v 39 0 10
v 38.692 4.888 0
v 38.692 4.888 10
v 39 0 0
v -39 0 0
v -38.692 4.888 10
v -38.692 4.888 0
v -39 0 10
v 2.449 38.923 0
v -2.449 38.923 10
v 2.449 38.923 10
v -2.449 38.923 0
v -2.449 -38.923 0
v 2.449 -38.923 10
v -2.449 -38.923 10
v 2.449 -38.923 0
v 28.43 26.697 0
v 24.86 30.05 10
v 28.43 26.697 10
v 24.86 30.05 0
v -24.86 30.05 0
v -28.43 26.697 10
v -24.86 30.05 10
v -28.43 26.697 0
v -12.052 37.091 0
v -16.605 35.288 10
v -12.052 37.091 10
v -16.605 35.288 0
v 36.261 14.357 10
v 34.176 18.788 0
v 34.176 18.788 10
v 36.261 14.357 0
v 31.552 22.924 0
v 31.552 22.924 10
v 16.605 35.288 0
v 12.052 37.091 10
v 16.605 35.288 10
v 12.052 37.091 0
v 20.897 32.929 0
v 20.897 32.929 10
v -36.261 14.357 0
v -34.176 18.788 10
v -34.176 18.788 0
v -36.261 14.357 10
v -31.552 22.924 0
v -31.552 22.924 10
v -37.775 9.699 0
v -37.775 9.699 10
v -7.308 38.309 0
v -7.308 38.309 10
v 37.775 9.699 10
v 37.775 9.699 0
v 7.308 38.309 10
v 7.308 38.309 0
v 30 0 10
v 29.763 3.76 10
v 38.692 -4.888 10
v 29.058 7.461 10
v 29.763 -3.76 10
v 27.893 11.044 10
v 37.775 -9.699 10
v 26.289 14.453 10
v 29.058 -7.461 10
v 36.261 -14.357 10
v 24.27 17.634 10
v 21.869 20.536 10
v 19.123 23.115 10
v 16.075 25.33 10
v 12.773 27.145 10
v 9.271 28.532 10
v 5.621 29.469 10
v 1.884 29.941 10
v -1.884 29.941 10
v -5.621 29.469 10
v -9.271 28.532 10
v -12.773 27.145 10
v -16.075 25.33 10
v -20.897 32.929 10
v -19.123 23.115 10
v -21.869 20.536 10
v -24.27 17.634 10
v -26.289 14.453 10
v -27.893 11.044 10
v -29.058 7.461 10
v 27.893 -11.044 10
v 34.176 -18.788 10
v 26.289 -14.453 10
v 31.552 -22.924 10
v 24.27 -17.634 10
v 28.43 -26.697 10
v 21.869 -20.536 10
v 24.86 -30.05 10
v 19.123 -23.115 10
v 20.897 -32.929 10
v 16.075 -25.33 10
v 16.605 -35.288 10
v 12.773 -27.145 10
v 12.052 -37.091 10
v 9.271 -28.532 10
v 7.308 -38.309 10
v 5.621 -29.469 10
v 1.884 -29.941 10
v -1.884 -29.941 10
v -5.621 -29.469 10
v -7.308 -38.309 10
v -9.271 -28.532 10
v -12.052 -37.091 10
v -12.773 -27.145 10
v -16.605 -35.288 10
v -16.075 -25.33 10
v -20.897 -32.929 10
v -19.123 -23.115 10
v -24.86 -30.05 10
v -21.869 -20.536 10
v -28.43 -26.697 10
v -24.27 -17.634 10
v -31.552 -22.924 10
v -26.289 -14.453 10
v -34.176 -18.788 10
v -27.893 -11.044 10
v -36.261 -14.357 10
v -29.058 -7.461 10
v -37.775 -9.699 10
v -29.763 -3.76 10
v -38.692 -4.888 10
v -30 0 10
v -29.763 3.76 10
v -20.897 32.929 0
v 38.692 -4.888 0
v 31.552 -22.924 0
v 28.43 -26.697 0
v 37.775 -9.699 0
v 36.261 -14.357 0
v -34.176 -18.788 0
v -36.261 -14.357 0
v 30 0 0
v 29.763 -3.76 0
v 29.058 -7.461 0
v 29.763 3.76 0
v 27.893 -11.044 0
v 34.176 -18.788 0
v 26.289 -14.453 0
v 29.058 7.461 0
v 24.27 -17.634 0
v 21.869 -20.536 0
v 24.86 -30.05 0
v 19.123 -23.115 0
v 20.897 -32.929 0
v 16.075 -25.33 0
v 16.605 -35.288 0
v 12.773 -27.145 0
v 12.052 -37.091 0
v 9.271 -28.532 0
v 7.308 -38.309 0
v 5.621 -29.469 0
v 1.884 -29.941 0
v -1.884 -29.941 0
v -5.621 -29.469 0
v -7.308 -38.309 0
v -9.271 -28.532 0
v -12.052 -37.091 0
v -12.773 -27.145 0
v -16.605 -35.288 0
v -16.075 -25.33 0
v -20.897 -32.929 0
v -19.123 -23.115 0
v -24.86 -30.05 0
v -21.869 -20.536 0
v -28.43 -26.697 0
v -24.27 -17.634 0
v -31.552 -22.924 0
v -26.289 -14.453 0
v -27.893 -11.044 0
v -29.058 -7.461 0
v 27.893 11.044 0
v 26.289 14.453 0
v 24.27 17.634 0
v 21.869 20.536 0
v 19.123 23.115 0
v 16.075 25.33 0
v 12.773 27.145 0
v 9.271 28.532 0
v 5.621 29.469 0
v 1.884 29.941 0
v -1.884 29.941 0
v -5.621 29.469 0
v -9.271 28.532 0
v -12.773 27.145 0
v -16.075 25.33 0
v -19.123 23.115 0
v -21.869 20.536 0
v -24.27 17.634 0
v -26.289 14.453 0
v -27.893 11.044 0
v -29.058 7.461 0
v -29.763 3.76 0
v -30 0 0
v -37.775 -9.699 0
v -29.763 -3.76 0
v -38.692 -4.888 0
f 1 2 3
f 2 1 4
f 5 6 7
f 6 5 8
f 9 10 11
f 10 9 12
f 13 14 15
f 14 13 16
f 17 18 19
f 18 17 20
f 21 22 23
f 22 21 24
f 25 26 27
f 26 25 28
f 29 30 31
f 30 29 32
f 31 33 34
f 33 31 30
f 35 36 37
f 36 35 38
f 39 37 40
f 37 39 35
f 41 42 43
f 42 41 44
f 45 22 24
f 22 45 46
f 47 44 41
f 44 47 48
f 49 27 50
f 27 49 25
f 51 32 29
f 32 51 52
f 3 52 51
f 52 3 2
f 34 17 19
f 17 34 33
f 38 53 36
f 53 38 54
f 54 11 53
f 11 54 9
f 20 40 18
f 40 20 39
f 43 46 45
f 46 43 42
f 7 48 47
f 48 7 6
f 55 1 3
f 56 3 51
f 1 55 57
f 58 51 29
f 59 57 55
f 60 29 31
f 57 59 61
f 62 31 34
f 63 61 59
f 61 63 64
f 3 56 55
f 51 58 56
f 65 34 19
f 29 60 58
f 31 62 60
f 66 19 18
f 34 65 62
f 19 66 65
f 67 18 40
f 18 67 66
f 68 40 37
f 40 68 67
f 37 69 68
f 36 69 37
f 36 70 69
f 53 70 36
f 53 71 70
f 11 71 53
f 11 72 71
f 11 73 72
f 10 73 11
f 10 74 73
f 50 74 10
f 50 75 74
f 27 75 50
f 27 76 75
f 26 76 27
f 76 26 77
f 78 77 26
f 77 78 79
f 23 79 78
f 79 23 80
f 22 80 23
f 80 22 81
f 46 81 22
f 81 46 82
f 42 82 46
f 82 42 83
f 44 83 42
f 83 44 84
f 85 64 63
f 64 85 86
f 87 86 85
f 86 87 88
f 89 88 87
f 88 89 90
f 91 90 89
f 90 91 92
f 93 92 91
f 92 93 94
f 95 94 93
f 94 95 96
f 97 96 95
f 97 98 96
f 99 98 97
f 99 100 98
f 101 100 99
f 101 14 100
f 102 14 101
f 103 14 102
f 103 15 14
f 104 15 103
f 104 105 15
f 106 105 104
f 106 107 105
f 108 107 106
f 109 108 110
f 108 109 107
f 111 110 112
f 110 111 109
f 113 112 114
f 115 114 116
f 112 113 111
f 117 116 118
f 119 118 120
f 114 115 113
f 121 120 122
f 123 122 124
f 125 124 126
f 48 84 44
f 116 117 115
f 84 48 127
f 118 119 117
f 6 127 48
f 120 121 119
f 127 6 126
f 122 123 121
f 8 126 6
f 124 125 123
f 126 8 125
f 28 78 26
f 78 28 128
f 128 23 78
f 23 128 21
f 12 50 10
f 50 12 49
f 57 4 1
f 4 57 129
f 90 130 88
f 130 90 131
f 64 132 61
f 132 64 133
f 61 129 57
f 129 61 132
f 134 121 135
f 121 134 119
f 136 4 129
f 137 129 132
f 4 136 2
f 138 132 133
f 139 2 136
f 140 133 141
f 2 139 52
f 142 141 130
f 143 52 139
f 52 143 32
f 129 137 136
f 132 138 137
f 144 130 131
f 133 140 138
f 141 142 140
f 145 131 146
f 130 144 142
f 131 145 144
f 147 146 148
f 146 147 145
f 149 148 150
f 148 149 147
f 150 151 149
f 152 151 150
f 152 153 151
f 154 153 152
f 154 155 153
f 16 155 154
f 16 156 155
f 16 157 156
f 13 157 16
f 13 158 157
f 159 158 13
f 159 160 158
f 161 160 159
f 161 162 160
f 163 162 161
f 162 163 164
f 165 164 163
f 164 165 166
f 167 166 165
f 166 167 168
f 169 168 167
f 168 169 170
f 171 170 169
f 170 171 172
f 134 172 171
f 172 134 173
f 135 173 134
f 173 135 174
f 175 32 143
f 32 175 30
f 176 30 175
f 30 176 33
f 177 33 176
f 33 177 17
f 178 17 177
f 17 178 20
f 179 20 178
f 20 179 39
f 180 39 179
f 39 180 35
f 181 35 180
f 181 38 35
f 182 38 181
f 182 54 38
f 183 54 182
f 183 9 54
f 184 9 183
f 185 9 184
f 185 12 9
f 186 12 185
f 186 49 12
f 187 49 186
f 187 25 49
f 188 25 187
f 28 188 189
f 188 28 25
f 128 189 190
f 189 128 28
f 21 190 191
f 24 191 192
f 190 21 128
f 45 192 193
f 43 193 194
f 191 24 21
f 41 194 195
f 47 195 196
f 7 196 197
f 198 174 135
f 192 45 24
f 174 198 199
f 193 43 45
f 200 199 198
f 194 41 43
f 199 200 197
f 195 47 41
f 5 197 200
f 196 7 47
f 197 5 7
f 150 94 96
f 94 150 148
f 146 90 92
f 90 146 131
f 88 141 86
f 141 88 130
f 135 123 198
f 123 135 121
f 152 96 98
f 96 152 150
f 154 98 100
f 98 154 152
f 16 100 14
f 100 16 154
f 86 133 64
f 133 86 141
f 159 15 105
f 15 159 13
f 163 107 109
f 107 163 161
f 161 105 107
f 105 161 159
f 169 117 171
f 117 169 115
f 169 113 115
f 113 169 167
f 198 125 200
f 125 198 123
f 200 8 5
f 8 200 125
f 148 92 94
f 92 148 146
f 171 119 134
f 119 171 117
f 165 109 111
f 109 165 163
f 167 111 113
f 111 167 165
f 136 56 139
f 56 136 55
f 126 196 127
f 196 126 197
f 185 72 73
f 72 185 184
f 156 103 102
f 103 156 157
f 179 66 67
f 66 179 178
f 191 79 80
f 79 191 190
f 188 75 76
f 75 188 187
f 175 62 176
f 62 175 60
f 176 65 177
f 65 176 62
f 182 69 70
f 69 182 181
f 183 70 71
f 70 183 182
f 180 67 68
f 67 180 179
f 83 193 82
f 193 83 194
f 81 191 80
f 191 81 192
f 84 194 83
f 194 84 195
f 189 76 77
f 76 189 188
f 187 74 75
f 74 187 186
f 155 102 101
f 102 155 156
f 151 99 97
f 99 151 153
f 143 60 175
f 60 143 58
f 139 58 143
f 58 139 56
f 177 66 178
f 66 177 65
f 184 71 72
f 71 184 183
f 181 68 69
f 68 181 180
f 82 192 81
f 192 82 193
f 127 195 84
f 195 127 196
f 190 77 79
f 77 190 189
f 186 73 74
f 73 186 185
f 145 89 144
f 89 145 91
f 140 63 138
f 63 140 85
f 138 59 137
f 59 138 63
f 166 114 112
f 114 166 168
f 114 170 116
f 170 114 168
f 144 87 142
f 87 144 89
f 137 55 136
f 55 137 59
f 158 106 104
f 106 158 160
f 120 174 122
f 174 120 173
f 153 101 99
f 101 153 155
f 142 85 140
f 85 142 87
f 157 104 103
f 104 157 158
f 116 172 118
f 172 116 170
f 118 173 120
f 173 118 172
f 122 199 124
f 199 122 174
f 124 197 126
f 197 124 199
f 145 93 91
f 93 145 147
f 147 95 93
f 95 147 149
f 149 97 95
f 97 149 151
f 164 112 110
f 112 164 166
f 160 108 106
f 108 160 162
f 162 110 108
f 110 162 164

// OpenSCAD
$fn = 50;


difference() {
	union() {
		cylinder(h = 10, r = 39.0000000000);
	}
	union() {
		cylinder(h = 10, r = 30.0000000000);
	}
}
